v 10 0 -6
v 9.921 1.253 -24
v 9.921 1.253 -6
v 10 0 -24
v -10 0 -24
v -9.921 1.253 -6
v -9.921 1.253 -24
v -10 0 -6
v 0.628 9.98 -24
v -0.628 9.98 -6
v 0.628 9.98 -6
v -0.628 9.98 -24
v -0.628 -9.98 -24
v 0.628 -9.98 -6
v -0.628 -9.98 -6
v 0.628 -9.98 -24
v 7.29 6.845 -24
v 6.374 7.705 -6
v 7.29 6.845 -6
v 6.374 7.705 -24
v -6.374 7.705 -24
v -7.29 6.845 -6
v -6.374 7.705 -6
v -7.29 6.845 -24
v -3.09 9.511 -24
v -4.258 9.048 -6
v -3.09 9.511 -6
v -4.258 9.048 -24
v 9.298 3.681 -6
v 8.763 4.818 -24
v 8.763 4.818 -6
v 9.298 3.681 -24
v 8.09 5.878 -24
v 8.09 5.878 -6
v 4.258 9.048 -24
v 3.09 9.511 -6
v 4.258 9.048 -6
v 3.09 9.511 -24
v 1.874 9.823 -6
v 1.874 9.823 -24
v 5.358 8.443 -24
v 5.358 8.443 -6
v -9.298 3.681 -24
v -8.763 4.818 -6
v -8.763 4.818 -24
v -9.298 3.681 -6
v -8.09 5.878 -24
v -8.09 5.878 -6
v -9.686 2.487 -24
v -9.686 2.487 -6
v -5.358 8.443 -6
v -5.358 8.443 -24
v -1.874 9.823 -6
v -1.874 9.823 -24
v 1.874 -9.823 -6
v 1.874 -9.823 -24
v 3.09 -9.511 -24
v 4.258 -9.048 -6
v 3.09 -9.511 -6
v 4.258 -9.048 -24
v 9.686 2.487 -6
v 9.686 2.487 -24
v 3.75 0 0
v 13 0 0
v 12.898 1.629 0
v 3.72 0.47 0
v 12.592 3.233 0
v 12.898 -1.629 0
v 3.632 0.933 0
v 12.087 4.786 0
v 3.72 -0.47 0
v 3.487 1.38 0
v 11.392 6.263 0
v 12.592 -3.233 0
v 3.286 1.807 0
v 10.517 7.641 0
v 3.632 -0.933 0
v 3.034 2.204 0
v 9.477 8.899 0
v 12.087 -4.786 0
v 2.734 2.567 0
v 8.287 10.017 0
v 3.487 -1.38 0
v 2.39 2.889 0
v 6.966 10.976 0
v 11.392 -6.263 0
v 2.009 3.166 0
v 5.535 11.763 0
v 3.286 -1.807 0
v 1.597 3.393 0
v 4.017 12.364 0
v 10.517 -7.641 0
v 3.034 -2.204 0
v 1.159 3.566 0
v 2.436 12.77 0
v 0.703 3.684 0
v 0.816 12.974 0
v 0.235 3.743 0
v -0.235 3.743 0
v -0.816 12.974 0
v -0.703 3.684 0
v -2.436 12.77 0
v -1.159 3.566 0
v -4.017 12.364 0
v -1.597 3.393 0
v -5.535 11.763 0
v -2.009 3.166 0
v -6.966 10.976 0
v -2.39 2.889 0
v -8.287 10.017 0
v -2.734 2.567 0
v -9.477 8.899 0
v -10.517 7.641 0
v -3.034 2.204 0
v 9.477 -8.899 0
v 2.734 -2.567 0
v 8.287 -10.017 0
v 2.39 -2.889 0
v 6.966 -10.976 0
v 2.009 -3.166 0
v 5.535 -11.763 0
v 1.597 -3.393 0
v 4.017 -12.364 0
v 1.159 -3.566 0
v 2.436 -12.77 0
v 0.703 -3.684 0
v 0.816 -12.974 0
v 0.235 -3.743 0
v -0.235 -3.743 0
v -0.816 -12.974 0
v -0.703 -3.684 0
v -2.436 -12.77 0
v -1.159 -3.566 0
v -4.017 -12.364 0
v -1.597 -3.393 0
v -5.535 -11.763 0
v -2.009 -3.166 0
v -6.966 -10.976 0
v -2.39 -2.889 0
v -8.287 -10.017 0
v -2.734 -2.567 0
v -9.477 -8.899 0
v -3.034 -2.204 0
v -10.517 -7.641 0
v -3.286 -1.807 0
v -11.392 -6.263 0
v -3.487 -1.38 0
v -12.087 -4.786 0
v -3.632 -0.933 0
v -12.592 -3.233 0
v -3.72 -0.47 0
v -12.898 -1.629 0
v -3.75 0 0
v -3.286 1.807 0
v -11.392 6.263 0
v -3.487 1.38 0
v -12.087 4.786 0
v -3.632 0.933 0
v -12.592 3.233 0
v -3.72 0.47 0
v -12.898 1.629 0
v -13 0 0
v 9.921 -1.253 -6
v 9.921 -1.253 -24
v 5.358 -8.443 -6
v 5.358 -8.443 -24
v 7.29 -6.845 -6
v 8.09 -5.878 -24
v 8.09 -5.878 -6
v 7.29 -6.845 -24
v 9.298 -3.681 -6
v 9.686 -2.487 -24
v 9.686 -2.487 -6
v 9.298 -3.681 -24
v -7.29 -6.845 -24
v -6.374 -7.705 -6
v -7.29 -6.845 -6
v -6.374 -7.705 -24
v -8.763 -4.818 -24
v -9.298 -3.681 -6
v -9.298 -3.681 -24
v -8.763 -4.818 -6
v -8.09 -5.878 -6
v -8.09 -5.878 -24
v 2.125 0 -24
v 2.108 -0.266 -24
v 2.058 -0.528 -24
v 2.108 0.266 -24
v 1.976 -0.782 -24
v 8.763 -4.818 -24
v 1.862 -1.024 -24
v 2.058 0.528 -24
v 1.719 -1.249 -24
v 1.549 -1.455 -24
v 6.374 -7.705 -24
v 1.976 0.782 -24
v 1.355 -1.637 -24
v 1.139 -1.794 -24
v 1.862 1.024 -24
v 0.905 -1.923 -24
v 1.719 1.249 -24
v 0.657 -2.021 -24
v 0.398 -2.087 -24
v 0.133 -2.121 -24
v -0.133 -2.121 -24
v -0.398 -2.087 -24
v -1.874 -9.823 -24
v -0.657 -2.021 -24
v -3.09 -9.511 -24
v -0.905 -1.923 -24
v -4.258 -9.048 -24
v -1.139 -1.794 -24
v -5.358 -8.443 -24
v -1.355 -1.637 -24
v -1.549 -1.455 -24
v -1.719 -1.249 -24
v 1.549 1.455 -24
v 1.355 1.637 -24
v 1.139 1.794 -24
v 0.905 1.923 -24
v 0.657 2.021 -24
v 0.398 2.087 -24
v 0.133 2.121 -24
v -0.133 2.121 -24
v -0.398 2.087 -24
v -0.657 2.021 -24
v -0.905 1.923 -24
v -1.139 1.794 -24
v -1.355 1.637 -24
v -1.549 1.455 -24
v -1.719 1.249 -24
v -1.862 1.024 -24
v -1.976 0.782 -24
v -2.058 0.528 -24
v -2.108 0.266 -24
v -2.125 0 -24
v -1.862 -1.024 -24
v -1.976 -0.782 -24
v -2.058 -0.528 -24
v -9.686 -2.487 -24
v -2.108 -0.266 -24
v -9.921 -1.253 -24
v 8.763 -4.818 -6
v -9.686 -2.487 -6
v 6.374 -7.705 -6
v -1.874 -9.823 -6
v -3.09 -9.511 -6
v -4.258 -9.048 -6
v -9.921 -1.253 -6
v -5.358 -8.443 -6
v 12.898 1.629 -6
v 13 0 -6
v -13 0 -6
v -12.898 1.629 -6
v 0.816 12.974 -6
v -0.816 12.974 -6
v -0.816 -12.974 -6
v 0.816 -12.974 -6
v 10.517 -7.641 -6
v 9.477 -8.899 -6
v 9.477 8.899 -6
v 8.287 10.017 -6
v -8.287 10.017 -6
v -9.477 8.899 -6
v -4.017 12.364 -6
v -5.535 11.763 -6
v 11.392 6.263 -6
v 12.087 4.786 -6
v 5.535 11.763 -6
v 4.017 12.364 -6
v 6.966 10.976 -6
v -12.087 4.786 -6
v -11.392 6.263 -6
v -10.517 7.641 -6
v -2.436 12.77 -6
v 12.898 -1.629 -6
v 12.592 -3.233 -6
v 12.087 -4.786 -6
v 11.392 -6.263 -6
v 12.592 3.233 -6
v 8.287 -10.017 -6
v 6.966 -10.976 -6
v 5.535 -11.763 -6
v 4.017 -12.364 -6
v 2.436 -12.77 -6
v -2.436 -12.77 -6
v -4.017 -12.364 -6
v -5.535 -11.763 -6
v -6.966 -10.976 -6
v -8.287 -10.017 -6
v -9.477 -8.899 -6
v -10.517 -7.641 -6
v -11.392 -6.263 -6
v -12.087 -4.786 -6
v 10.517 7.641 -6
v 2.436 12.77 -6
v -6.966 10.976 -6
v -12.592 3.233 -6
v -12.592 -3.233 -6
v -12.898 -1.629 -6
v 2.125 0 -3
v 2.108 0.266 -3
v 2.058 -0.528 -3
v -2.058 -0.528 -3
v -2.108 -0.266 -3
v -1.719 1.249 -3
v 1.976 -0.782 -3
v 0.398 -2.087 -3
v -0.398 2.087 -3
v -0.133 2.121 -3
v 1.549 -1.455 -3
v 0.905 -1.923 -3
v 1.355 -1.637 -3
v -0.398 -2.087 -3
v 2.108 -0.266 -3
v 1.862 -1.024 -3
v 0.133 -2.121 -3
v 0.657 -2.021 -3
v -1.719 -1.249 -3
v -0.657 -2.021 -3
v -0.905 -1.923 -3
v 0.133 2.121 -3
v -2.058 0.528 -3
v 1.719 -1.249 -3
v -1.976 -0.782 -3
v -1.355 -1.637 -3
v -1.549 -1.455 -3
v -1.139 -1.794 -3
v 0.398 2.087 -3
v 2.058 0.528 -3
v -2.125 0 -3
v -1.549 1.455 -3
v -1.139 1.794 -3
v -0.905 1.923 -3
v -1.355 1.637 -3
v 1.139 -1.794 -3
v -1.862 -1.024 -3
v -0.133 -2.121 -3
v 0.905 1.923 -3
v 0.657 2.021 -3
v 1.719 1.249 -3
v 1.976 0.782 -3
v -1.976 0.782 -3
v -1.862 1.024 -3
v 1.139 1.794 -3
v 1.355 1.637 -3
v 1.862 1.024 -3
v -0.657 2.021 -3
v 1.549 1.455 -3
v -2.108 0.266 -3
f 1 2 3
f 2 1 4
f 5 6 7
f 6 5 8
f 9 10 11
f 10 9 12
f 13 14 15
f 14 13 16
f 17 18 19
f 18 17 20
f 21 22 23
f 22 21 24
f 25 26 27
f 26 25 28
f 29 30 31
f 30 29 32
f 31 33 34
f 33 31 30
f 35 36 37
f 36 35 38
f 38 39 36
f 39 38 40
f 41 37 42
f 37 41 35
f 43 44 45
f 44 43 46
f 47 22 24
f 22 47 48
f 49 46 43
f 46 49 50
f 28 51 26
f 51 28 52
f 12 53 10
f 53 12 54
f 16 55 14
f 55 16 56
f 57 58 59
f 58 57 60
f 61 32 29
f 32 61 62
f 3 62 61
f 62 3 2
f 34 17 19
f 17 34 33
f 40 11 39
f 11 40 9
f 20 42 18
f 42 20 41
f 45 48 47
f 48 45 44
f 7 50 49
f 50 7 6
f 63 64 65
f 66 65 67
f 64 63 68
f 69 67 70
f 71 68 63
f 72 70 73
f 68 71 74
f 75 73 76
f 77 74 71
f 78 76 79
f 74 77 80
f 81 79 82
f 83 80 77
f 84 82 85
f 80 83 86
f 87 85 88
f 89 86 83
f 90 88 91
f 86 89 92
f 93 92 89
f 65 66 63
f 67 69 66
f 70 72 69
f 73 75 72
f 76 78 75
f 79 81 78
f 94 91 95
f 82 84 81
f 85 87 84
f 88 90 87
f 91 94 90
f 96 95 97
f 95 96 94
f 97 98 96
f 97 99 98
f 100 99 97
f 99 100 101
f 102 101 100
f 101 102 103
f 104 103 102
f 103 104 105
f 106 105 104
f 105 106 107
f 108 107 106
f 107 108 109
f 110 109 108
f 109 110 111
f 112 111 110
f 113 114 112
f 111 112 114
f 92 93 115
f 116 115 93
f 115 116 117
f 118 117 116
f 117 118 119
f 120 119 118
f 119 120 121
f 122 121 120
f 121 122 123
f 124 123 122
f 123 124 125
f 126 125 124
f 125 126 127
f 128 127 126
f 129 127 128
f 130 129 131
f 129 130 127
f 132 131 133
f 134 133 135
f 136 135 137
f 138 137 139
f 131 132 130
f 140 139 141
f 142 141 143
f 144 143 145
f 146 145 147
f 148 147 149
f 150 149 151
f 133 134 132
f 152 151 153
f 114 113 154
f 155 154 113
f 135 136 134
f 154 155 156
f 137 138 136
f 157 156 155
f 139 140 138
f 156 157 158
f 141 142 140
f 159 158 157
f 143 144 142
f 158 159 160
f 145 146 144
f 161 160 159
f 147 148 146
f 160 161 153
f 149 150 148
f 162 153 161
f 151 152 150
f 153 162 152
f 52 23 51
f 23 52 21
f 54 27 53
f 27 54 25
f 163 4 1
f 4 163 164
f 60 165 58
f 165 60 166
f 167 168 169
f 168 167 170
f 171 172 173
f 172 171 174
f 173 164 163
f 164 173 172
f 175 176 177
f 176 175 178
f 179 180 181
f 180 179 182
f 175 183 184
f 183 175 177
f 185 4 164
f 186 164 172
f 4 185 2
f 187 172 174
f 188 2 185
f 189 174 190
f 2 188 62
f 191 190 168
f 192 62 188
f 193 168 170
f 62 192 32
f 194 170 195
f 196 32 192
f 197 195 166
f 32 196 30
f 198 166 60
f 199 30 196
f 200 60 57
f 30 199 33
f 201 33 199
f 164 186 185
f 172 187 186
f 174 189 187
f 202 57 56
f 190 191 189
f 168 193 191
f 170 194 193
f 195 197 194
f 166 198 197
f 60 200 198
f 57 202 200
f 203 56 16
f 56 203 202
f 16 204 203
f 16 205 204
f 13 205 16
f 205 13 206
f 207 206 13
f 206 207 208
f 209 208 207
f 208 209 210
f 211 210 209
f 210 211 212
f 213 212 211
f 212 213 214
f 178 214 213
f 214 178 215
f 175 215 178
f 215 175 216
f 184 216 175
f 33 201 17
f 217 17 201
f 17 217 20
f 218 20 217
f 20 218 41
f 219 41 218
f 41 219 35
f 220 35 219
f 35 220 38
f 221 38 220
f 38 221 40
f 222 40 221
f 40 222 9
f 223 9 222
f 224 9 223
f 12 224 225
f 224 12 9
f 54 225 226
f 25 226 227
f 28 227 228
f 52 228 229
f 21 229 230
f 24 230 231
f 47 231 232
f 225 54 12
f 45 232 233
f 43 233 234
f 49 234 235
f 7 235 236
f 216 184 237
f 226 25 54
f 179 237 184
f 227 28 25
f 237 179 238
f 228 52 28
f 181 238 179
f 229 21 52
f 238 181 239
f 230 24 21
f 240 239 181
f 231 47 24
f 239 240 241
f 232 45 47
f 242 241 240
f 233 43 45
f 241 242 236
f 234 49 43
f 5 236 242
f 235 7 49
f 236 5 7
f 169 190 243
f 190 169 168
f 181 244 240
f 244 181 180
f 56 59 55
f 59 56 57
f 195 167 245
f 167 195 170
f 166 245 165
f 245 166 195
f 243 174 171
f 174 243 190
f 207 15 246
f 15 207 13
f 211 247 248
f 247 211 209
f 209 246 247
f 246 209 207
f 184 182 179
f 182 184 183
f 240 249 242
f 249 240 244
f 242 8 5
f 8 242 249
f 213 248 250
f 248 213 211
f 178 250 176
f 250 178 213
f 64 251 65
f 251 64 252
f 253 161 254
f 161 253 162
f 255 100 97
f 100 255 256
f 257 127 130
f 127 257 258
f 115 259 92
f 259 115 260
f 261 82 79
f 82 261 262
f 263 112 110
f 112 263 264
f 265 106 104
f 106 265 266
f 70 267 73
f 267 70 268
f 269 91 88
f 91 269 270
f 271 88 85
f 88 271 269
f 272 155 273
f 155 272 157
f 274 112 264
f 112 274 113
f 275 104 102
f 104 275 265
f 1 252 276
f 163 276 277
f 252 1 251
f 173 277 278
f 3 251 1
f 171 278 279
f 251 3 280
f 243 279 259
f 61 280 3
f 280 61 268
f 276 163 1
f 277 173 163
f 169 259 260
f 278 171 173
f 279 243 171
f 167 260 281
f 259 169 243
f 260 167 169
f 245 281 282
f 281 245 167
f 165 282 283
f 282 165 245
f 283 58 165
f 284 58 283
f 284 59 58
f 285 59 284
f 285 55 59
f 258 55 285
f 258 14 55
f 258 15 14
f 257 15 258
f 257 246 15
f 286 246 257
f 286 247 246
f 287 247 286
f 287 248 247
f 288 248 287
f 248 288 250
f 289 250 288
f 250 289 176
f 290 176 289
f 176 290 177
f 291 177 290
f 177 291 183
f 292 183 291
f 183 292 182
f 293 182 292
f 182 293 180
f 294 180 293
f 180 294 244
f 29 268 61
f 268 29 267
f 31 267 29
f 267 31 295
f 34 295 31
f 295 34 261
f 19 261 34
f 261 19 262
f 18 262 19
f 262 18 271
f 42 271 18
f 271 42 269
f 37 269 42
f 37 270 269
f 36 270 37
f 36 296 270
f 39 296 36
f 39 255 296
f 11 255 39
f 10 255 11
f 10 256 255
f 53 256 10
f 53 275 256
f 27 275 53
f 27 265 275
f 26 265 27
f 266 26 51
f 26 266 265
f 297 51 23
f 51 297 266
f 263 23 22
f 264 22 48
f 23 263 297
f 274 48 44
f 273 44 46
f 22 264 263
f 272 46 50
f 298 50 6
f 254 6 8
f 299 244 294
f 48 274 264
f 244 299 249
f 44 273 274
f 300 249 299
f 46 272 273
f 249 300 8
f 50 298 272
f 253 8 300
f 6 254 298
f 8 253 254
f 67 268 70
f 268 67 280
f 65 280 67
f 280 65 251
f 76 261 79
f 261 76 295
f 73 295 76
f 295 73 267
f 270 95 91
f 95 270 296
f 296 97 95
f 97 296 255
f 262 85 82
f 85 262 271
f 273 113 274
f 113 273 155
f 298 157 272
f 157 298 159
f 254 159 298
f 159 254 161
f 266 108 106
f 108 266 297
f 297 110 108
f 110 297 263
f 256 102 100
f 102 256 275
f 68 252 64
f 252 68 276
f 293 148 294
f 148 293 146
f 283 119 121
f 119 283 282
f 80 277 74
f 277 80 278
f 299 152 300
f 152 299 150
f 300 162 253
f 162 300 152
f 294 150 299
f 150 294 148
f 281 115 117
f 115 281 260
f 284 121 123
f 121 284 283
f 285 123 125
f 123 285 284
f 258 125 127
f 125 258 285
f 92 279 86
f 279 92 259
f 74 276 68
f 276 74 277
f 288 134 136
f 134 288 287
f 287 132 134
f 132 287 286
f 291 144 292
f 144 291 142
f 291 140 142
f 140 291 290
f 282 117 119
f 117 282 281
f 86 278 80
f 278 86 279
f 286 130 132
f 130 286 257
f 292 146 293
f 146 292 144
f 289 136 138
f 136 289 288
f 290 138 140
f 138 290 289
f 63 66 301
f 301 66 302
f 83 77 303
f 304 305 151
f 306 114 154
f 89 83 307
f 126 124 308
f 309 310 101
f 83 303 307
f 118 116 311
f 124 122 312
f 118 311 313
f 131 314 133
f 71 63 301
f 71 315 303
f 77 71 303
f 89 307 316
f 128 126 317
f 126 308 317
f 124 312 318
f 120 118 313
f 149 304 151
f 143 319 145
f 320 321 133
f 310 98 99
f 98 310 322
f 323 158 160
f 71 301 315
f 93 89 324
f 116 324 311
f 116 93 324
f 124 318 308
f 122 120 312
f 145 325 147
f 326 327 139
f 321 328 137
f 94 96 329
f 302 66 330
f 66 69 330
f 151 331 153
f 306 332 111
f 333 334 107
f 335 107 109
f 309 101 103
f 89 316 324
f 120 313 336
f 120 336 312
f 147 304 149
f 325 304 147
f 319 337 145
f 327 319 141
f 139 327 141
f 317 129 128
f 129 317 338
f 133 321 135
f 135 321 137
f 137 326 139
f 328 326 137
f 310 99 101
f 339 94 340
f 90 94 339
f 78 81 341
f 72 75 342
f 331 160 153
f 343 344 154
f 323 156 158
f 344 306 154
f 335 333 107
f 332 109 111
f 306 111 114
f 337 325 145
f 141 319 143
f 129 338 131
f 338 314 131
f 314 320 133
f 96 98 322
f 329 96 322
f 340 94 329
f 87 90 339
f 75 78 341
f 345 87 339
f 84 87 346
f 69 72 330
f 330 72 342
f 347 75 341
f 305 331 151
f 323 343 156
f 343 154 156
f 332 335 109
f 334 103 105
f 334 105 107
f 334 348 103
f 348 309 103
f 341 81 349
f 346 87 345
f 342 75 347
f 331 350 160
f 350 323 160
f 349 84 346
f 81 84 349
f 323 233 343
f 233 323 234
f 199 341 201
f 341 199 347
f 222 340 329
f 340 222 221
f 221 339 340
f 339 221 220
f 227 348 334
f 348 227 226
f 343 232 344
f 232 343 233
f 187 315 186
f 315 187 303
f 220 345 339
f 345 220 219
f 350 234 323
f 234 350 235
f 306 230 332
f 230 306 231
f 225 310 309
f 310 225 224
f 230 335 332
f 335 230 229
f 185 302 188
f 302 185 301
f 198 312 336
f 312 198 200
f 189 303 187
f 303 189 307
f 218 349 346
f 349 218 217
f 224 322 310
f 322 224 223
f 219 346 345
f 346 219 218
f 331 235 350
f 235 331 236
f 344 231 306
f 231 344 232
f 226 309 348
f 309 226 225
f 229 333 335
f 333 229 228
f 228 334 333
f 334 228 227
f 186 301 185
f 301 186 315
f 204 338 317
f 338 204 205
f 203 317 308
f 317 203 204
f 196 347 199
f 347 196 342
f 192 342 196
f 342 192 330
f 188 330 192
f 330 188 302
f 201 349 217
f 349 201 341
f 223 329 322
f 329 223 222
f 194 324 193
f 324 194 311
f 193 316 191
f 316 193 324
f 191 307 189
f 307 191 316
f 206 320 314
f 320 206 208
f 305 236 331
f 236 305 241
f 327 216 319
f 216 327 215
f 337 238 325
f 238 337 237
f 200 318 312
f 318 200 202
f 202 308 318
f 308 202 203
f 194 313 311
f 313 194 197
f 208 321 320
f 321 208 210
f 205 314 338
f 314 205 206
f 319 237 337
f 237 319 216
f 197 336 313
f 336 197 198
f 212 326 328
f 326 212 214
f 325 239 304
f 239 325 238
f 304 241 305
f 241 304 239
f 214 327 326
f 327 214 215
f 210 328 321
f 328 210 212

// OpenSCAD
$fn = 50;


difference() {
	union() {
		translate(v = [0, 0, -24.0000000000]) {
			cylinder(h = 24, r = 10.0000000000);
		}
		translate(v = [0, 0, -6.0000000000]) {
			cylinder(h = 6, r = 13.0000000000);
		}
	}
	union() {
		translate(v = [0, 0, 0]) {
			rotate(a = [0, 0, 0]) {
				difference() {
					union() {
						#translate(v = [0, 0, -24.0000000000]) {
							cylinder(h = 24, r = 2.0000000000);
						}
						#translate(v = [0, 0, -3]) {
							cylinder(h = 3, r1 = 2.1250000000, r2 = 3.7500000000);
						}
						#translate(v = [0, 0, -24.0000000000]) {
							cylinder(h = 24, r = 2.1250000000);
						}
						#translate(v = [0, 0, -24.0000000000]) {
							cylinder(h = 24, r = 2.0000000000);
						}
					}
					union();
				}
			}
		}
	}
}
